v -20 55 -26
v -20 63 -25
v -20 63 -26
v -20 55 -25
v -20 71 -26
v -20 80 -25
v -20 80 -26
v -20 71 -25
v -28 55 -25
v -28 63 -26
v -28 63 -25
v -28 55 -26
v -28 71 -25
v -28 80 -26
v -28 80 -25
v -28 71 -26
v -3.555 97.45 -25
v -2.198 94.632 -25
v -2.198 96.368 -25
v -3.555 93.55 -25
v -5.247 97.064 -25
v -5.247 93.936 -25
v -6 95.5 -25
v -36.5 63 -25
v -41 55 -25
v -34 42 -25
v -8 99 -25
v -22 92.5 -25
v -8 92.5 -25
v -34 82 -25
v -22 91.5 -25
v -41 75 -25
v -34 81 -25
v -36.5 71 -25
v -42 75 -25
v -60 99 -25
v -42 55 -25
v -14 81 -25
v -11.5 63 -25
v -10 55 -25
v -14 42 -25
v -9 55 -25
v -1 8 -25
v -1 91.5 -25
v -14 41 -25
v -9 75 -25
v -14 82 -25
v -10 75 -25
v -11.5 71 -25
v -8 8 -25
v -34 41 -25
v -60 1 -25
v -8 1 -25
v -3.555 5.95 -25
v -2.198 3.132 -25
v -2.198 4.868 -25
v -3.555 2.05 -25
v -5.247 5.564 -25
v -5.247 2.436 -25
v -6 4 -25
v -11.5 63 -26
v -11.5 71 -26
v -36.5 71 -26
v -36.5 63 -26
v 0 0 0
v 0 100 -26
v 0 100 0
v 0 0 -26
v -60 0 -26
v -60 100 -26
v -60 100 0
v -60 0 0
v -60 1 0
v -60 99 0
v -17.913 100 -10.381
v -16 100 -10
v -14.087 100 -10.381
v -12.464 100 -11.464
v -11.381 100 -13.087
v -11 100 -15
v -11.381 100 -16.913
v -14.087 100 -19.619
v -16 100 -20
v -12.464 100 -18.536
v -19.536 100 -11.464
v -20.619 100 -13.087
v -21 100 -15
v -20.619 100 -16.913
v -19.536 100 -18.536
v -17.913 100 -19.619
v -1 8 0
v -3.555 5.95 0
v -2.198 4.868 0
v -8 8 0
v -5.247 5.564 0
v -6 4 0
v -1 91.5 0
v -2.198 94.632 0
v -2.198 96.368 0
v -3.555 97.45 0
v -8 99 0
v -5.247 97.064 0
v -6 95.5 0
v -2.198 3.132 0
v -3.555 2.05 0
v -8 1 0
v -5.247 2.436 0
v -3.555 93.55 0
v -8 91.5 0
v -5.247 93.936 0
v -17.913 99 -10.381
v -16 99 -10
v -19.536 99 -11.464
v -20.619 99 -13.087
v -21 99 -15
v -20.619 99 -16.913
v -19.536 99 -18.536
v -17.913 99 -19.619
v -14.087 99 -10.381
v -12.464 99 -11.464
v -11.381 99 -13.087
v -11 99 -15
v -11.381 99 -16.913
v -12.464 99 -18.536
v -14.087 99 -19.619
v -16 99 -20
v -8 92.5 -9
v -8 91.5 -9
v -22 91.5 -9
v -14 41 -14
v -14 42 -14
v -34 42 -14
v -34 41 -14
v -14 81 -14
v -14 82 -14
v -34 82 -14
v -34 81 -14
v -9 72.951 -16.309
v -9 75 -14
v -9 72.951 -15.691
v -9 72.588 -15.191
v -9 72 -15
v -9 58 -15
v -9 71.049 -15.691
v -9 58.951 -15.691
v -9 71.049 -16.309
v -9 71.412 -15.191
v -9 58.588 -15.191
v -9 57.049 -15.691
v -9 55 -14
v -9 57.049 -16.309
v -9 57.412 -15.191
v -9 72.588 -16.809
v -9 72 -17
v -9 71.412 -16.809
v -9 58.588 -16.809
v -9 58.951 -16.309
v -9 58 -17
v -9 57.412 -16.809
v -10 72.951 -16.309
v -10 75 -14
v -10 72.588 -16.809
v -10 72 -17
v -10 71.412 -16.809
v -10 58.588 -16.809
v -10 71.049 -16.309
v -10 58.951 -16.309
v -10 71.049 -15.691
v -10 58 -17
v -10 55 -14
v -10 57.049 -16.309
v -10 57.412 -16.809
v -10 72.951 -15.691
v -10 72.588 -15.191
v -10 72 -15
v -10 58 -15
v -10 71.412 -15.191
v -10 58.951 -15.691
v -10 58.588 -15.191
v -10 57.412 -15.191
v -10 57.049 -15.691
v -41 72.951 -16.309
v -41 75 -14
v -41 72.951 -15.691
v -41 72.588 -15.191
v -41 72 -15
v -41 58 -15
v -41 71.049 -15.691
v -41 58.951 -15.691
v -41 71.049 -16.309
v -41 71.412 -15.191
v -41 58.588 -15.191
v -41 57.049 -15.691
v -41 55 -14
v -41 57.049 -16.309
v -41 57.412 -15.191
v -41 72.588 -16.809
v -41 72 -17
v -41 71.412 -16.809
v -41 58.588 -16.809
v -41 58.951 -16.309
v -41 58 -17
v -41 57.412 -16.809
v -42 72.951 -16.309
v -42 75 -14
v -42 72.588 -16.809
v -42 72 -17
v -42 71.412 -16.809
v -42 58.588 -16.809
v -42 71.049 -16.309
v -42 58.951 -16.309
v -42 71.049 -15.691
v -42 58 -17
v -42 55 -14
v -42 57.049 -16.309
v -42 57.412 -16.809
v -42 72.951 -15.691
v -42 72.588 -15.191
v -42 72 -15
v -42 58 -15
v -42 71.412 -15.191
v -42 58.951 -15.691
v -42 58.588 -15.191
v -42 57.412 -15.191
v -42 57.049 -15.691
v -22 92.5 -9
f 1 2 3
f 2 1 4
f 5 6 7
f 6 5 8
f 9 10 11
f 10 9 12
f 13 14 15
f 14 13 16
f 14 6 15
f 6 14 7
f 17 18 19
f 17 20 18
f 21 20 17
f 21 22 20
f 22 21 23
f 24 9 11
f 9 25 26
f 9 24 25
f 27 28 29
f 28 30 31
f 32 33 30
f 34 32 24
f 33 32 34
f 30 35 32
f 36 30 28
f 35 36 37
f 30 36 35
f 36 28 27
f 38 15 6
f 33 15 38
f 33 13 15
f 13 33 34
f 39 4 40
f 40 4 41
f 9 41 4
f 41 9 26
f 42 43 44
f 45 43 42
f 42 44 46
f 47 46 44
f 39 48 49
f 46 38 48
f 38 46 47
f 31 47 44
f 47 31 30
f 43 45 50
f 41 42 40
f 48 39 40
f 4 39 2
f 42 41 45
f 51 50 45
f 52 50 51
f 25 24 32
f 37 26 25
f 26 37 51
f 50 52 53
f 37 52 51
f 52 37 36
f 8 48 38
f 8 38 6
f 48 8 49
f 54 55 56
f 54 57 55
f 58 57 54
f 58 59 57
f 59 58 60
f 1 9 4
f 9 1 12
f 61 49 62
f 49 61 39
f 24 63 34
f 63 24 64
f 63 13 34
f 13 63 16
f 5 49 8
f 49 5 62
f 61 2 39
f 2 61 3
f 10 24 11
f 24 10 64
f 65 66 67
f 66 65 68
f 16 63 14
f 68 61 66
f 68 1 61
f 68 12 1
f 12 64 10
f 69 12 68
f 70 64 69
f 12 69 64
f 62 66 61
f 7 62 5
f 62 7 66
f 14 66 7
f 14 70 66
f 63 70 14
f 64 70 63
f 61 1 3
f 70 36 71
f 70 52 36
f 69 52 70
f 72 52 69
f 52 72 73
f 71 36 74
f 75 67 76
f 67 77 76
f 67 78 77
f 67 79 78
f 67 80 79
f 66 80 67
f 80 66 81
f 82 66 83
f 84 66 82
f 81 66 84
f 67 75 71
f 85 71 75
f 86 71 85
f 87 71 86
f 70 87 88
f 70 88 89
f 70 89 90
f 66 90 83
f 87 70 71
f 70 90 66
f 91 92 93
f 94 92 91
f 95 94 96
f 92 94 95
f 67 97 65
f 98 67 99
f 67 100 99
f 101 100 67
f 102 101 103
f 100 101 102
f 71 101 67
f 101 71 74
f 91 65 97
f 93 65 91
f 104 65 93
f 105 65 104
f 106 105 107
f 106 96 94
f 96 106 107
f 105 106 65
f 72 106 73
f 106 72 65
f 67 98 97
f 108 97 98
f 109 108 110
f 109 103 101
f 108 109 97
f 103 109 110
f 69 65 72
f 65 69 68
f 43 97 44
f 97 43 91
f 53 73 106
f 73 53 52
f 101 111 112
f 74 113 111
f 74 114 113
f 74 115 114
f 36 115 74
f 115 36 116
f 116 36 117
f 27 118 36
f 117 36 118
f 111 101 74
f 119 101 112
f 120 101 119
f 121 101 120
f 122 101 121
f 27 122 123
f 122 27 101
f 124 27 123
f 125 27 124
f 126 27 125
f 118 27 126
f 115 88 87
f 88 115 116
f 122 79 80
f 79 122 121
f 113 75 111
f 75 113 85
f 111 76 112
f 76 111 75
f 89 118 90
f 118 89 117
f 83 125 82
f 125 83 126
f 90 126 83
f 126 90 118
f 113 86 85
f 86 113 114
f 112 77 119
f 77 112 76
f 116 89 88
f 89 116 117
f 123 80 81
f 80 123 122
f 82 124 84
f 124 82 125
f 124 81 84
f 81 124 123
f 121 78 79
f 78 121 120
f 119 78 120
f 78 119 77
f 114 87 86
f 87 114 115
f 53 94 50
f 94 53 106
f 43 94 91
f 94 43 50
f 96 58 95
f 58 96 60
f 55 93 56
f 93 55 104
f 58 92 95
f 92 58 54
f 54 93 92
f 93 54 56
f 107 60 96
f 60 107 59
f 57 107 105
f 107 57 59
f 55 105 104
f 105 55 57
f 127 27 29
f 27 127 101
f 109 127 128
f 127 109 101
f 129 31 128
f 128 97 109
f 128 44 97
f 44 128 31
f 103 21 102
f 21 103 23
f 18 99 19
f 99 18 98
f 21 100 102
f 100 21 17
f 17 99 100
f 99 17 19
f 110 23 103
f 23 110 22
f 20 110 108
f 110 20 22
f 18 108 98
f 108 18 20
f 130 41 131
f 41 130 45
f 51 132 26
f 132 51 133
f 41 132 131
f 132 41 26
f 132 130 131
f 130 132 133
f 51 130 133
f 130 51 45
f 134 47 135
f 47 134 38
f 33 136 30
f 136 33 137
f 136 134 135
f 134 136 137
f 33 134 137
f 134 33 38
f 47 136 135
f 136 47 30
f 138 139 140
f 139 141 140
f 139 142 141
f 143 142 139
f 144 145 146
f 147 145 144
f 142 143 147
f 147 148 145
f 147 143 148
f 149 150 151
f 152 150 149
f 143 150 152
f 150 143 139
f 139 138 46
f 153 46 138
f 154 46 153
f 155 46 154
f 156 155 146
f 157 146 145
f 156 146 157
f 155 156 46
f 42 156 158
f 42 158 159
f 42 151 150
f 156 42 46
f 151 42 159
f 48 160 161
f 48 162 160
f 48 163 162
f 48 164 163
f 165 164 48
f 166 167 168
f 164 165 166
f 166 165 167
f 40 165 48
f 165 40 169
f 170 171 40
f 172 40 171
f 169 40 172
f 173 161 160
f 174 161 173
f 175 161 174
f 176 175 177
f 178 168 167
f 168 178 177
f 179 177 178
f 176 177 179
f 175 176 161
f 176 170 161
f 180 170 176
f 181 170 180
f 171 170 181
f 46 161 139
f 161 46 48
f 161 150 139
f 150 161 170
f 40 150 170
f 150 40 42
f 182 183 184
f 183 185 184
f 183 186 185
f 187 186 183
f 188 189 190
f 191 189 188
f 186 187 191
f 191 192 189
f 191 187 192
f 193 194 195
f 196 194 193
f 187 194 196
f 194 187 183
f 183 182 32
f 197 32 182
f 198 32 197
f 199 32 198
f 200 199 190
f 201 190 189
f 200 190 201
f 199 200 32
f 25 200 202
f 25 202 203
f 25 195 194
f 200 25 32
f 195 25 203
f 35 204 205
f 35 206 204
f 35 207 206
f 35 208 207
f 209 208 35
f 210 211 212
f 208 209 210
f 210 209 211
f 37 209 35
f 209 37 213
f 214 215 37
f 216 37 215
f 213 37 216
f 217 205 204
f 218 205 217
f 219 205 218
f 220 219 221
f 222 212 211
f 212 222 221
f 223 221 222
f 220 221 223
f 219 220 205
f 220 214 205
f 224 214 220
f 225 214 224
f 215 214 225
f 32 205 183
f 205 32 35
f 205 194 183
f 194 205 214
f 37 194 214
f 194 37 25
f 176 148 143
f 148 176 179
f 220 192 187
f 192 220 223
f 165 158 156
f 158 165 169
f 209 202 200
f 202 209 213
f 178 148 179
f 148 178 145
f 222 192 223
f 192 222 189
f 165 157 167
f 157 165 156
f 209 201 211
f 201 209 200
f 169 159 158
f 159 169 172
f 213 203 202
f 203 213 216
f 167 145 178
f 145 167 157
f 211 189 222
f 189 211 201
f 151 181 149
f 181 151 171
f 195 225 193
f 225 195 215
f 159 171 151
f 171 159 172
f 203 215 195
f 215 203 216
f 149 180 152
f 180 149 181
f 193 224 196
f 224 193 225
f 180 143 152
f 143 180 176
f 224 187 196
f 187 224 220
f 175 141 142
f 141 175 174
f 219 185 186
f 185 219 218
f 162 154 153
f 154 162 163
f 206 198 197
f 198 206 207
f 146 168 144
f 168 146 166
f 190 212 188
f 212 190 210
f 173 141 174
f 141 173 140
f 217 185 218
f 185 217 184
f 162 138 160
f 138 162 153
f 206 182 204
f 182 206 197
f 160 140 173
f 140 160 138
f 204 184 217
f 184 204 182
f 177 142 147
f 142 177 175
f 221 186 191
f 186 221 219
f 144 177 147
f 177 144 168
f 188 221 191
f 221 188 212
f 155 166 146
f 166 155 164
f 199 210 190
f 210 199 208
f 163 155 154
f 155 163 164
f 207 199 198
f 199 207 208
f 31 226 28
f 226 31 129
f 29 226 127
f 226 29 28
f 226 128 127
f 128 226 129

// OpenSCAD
H         = 100;
W         = 60;
Z         = 25;
thickness = 1;

rotation_before_print=180;
rotate([0, rotation_before_print, 0]) {
    union () {
        difference () {
            // box
            //minkowski() {
                cube([W,H,thickness+Z]);
                //cylinder(r=1,h=1);
            //}
            // extrusion
            translate([thickness, thickness, 0]) cube([W-thickness+10 ,H-(2 * thickness),Z]);

            // D-pad
            crossY = 55;
            crossX = 20;
            translate([crossX, crossY, Z]) union() {
                crossW = 25;
                crossH = 8;
                cube([crossH, crossW, thickness*2]);
                translate([-(crossW-crossH)/2,(crossH+crossH)/2,0])  cube([crossW, crossH, thickness*2]);
            }

            // top button - hole
            translate([16, H, Z-10]) rotate([90, 0, 0]) cylinder(r=5,h=thickness);
         }
         // top button support
         supportZ= 16;
        translate([8, H-8.5, Z-supportZ]) cube([14, 1, supportZ]);


         // pillars for screws
         pillar = 8;
         // bottom
         difference() {
            cube([pillar, pillar, Z]);
            translate([pillar/2, pillar/2, -(Z-10)]) cylinder(r=2,h=Z*2);
         }
         // top
         translate([0, H-pillar-0.5, 0]) {
            difference() {
                cube([pillar, pillar, Z]);
                translate([pillar/2, pillar/2, -(Z-10)]) cylinder(r=2,h=Z*2);
             }
         }

        // PCB attachments
        difference() {
            attachW = 20;
            attachZ = 11;
            union() {
                 // bottom
                 translate([14, 41, Z-attachZ]) cube([attachW, 1, attachZ]);
                 // top
                 translate([14, 81, Z-attachZ]) cube([attachW, 1, attachZ]);
                 // right
                 translate([9, 55, Z-attachZ]) cube([1, attachW, attachZ]);
                 // left
                 translate([41, 55, Z-attachZ]) cube([1, attachW, attachZ]);
            }
            // holes
            translate([5, 58, Z-attachZ+2]) rotate([0, 90, 0]) cylinder(r=1, h=40, $fn=10);
            translate([5, 72, Z-attachZ+2]) rotate([0, 90, 0]) cylinder(r=1, h=40, $fn=10);
         }
         // board simulation
         //translate([10, 42, 20]) cube([31, 39, 1]);
     }
 }
